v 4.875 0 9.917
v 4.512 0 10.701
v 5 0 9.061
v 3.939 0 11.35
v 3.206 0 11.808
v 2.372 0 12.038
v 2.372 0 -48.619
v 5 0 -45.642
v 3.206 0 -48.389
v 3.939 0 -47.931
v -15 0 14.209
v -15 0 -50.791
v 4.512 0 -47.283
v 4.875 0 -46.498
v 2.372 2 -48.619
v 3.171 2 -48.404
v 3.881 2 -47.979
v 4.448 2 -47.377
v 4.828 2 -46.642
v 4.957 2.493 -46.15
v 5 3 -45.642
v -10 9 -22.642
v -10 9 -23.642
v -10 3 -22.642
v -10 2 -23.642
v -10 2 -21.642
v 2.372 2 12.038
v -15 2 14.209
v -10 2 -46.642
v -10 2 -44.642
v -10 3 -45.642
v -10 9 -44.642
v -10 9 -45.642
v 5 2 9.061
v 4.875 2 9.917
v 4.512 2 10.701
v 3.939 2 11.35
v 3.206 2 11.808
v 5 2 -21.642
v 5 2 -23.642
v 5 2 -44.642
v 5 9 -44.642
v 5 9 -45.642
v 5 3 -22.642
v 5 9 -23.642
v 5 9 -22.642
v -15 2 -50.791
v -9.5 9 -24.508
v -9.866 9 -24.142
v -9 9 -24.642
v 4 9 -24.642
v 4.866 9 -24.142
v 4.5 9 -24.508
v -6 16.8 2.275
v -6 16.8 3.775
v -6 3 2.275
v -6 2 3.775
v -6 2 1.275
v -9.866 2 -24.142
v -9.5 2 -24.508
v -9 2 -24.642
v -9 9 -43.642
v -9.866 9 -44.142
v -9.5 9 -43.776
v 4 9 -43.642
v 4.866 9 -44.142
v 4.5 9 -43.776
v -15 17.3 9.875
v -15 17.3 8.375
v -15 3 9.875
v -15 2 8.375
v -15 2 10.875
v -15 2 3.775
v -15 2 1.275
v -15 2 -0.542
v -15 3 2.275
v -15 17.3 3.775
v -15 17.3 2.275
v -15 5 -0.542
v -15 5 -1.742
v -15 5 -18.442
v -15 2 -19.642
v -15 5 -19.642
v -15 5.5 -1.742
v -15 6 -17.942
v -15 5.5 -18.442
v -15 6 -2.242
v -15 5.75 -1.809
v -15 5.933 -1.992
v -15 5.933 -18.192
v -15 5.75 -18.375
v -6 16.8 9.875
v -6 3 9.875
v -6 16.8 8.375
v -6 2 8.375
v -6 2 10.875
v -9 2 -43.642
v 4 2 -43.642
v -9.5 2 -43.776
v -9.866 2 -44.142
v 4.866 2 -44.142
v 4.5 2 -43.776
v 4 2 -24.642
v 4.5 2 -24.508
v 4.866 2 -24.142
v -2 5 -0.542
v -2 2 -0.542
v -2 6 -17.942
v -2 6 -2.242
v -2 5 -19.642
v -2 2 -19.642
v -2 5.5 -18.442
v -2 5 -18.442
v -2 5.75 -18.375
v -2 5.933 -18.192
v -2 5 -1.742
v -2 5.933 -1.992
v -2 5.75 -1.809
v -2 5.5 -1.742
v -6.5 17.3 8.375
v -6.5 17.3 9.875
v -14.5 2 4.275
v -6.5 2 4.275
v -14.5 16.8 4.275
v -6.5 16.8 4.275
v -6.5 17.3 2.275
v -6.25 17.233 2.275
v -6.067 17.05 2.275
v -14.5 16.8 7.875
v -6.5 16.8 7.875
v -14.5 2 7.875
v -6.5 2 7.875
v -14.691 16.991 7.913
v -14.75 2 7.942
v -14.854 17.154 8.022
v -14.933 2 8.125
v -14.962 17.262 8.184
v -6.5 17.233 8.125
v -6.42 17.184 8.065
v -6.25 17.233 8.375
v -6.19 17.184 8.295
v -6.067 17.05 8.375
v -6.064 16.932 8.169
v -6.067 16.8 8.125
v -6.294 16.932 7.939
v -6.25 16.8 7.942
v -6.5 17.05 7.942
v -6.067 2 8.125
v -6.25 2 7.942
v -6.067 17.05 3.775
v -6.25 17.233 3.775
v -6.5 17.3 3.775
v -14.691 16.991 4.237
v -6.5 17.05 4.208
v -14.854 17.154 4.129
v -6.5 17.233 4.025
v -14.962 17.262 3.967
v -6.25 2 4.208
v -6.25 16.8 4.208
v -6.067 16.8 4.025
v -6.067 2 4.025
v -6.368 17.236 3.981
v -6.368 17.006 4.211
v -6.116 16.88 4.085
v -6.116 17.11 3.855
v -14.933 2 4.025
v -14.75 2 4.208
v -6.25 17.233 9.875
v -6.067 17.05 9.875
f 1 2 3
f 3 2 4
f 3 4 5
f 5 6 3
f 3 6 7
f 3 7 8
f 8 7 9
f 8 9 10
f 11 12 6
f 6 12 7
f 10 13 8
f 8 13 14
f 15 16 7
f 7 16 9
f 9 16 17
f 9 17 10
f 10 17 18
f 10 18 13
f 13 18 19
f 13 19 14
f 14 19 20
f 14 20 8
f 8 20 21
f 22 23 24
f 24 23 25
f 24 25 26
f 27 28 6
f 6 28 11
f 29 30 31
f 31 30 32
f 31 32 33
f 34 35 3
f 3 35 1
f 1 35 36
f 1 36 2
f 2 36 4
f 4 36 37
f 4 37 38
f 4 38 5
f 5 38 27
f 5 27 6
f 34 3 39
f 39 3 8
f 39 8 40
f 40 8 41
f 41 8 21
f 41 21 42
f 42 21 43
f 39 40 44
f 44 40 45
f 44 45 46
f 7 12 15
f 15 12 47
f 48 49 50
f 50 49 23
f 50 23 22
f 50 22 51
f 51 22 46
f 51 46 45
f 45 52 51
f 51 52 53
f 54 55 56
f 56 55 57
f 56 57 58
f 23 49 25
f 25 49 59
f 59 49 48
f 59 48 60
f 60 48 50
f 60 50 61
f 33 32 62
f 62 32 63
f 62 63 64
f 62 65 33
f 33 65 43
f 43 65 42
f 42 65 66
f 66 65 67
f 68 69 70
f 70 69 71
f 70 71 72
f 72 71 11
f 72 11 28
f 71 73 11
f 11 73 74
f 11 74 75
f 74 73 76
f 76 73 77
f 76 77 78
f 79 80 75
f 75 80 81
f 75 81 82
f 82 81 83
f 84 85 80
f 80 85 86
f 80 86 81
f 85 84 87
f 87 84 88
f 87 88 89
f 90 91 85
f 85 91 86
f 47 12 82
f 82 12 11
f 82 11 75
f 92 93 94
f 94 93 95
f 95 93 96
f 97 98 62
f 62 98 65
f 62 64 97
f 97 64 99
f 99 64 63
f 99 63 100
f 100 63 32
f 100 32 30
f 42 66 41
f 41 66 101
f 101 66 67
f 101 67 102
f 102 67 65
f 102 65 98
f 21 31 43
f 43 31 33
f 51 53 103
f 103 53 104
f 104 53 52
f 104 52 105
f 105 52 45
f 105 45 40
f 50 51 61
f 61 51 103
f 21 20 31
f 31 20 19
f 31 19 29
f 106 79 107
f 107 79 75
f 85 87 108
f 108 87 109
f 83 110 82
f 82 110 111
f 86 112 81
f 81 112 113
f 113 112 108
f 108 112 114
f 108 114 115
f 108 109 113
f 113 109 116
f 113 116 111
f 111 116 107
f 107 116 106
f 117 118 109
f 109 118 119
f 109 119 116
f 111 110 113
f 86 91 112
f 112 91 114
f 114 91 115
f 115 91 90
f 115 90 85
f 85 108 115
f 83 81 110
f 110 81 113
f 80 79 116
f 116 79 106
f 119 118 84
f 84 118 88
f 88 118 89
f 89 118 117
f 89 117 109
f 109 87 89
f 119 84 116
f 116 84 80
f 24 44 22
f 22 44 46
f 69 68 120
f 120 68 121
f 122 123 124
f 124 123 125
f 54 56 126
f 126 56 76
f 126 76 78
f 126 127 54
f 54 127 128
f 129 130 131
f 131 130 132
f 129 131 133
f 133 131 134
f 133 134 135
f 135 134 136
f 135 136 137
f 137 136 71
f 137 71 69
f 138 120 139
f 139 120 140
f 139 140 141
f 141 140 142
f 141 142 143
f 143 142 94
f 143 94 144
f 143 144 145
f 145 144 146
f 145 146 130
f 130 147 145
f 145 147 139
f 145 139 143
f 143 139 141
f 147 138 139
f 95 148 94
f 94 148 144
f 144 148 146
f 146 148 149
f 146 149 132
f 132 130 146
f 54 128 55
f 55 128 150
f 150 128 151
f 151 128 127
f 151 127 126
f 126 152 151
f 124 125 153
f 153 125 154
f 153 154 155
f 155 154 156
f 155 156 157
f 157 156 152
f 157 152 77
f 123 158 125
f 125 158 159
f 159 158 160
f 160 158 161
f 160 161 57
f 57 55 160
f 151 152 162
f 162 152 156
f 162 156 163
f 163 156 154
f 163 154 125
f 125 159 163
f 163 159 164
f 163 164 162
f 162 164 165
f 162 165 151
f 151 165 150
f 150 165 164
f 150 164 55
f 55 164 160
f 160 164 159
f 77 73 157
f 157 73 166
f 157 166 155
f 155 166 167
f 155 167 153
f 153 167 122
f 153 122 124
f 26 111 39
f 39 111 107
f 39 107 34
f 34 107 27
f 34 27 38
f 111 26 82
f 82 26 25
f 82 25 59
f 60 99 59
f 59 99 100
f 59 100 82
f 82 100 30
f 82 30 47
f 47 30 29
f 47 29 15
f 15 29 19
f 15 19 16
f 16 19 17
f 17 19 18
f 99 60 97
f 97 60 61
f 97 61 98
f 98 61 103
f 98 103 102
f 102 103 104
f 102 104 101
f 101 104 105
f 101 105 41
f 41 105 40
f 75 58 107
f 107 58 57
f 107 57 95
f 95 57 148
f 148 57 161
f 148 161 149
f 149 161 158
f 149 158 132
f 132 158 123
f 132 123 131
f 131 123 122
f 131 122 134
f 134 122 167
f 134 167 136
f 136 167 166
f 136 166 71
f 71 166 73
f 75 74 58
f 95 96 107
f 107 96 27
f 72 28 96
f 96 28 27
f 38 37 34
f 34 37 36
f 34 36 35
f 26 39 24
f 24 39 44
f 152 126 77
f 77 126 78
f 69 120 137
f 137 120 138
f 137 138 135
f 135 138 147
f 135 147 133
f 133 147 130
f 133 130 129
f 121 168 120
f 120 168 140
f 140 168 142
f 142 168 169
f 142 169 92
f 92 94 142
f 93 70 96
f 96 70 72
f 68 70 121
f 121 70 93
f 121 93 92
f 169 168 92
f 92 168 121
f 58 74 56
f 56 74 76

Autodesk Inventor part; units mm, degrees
ref_plane "YZ Plane" through (0, 0, 0) normal (1, 0, 0) x (0, 1, 0)
ref_plane "XZ Plane" through (0, 0, 0) normal (0, 1, 0) x (-1, 0, 0)
ref_plane "XY Plane" through (0, 0, 0) normal (0, 0, 1) x (1, 0, 0)
sketch "Эскиз1" plane through (0, 0, 0) normal (0, 1, 0) x (-1, 0, 0)
  line L0 (-5, 11.7093) -> (-5, -48.2907)
  line L1 (15, 10.2093) -> (15, -46.7907)
  line L2 (15, 10.2093) -> (15, 14.2093)
  line L3 (15, -46.7907) -> (15, -50.7907)
  line L4 (15, 14.2093) -> (-5, 11.7093)
  line L5 (15, -50.7907) -> (-5, -48.2907)
  point P0 (0, 0)
  dimension "d0" = 60
  dimension "d3" = 20
  dimension "d4" = 4
  dimension "d5" = 4
extrude "Выдавливание1" add sketch "Эскиз1" along normal blind 2
fillet "Сопряжение1" radius 3 2 edges at (5, 1, -48.2907) (5, 1, 11.7093)
sketch "Эскиз3" plane through (0, 2, 0) normal (0, 1, 0) x (1, 0, 0)
  arc A0 (5, 45.6424) -> (2.3721, 48.6192) centre (2, 45.6424) ccw projected
  line L0 (5, 45.6424) -> (-10, 45.6424)
  line L1 (-10, 45.6424) -> (-10, 43.6424)
  line L2 (-10, 43.6424) -> (5, 43.6424)
  line L3 (5, 43.6424) -> (5, 45.6424)
  line L4 (5, -9.0609) -> (5, 45.6424) projected
  line L5 (5, 24.6424) -> (-10, 24.6424)
  line L6 (-10, 24.6424) -> (-10, 22.6424)
  line L7 (-10, 22.6424) -> (5, 22.6424)
  line L8 (5, 22.6424) -> (5, 24.6424)
  point P0 (0, 0)
  dimension "d21" = 15
  dimension "d22" = 2
  dimension "d23" = 2
  dimension "d24" = 19
extrude "Выдавливание2" add sketch "Эскиз3" along normal blind 7
fillet "Сопряжение2" radius 1 4 edges at (5, 5.5, -43.6424) (5, 5.5, -24.6424) (-10, 5.5, -43.6424) (-10, 5.5, -24.6424)
chamfer "Фаска1" distance 1 angle 45 1 edges at (-2.5, 2, -45.6424)
sketch "Эскиз4" plane through (0, 2, 0) normal (0, 1, 0) x (1, 0, 0)
  line L0 (5, -9.0609) -> (5, 45.6424) projected
  line L1 (5, 19.6424) -> (-15, 19.6424)
  line L2 (-15, 19.6424) -> (-15, 0.5424)
  line L3 (-15, 0.5424) -> (5, 0.5424)
  line L4 (5, 0.5424) -> (5, 19.6424)
  line L5 (-9, 43.6424) -> (4, 43.6424) projected
  point P0 (0, 0)
  point P1 (5, 0.5424)
  dimension "d31" = 20
  dimension "d32" = 19.1
  dimension "d33" = 24
extrude "Выдавливание3" add sketch "Эскиз4" along normal blind 4
sketch "Эскиз5" plane through (0, 6, 0) normal (0, 1, 0) x (1, 0, 0)
  line L0 (-15, 0.5424) -> (5, 0.5424) projected
  line L1 (-15, 19.6424) -> (5, 19.6424) projected
  line L2 (5, 0.5424) -> (-2, 0.5424)
  line L3 (-2, 0.5424) -> (-2, 19.6424)
  line L4 (-2, 19.6424) -> (5, 19.6424)
  line L5 (5, 19.6424) -> (5, 0.5424)
  point P0 (0, 0)
  point P1 (5, 19.6424)
  dimension "d36" = 7
extrude "Выдавливание4" cut sketch "Эскиз5" against normal blind 4
sketch "Эскиз6" plane through (0, 6, 0) normal (0, 1, 0) x (1, 0, 0)
  line L0 (-15, 50.7907) -> (-15, -14.2093) projected
  line L1 (-15, 0.5424) -> (-2, 0.5424) projected
  line L2 (-15, 1.7424) -> (-2, 1.7424)
  line L3 (-2, 1.7424) -> (-2, 0.5424)
  line L4 (-2, 0.5424) -> (-15, 0.5424)
  line L5 (-15, 0.5424) -> (-15, 1.7424)
  line L6 (-2, 0.5424) -> (-2, 19.6424) projected
  line L7 (-2, 19.6424) -> (-15, 19.6424)
  line L8 (-15, 19.6424) -> (-15, 18.4424)
  line L9 (-15, 18.4424) -> (-2, 18.4424)
  line L10 (-2, 18.4424) -> (-2, 19.6424)
  point P0 (0, 0)
  point P1 (-2, 18.4424)
  point P2 (-15, 19.6424)
  dimension "d39" = 1.2
  dimension "d40" = 1.2
extrude "Выдавливание5" cut sketch "Эскиз6" against normal blind 1 contours L7 L6 L9 L0 | L2 L3 L1 L0
fillet "Сопряжение3" radius 0.5 2 edges at (-8.5, 6, -1.7424) (-8.5, 6, -18.4424)
sketch "Эскиз7" plane through (0, 2, 0) normal (0, 1, 0) x (1, 0, 0)
  line L0 (-15, -9.8754) -> (-6, -9.8754)
  line L1 (-6, -9.8754) -> (-6, -7.8754)
  line L2 (-6, -7.8754) -> (-15, -7.8754)
  line L3 (-15, -7.8754) -> (-15, -9.8754)
  line L4 (-15, 0.5424) -> (-15, -14.2093) projected
  line L5 (-6, -2.2754) -> (-15, -2.2754)
  line L6 (-15, -2.2754) -> (-15, -4.2754)
  line L7 (-15, -4.2754) -> (-6, -4.2754)
  line L8 (-6, -4.2754) -> (-6, -2.2754)
  point P0 (0, 0)
  dimension "d44" = 2
  dimension "d45" = 0
  dimension "d46" = 9
  dimension "d47" = 2
  dimension "d48" = 3.6
extrude "Выдавливание6" add sketch "Эскиз7" along normal blind 15.3
fillet "Сопряжение4" radius 0.5 8 edges at (-6, 17.3, 3.2754) (-10.5, 17.3, 4.2754) (-10.5, 17.3, 7.8754) (-6, 17.3, 8.8754) (-6, 9.65, 4.2754) (-6, 9.65, 7.8754) (-15, 9.65, 4.2754) (-15, 9.65, 7.8754)
chamfer "Фаска2" distance 1 angle 45 3 edges at (-10.5, 2, 9.8754) (-10.5, 2, 2.2754) (-2.5, 2, -22.6424)
properties part number "ploh"
